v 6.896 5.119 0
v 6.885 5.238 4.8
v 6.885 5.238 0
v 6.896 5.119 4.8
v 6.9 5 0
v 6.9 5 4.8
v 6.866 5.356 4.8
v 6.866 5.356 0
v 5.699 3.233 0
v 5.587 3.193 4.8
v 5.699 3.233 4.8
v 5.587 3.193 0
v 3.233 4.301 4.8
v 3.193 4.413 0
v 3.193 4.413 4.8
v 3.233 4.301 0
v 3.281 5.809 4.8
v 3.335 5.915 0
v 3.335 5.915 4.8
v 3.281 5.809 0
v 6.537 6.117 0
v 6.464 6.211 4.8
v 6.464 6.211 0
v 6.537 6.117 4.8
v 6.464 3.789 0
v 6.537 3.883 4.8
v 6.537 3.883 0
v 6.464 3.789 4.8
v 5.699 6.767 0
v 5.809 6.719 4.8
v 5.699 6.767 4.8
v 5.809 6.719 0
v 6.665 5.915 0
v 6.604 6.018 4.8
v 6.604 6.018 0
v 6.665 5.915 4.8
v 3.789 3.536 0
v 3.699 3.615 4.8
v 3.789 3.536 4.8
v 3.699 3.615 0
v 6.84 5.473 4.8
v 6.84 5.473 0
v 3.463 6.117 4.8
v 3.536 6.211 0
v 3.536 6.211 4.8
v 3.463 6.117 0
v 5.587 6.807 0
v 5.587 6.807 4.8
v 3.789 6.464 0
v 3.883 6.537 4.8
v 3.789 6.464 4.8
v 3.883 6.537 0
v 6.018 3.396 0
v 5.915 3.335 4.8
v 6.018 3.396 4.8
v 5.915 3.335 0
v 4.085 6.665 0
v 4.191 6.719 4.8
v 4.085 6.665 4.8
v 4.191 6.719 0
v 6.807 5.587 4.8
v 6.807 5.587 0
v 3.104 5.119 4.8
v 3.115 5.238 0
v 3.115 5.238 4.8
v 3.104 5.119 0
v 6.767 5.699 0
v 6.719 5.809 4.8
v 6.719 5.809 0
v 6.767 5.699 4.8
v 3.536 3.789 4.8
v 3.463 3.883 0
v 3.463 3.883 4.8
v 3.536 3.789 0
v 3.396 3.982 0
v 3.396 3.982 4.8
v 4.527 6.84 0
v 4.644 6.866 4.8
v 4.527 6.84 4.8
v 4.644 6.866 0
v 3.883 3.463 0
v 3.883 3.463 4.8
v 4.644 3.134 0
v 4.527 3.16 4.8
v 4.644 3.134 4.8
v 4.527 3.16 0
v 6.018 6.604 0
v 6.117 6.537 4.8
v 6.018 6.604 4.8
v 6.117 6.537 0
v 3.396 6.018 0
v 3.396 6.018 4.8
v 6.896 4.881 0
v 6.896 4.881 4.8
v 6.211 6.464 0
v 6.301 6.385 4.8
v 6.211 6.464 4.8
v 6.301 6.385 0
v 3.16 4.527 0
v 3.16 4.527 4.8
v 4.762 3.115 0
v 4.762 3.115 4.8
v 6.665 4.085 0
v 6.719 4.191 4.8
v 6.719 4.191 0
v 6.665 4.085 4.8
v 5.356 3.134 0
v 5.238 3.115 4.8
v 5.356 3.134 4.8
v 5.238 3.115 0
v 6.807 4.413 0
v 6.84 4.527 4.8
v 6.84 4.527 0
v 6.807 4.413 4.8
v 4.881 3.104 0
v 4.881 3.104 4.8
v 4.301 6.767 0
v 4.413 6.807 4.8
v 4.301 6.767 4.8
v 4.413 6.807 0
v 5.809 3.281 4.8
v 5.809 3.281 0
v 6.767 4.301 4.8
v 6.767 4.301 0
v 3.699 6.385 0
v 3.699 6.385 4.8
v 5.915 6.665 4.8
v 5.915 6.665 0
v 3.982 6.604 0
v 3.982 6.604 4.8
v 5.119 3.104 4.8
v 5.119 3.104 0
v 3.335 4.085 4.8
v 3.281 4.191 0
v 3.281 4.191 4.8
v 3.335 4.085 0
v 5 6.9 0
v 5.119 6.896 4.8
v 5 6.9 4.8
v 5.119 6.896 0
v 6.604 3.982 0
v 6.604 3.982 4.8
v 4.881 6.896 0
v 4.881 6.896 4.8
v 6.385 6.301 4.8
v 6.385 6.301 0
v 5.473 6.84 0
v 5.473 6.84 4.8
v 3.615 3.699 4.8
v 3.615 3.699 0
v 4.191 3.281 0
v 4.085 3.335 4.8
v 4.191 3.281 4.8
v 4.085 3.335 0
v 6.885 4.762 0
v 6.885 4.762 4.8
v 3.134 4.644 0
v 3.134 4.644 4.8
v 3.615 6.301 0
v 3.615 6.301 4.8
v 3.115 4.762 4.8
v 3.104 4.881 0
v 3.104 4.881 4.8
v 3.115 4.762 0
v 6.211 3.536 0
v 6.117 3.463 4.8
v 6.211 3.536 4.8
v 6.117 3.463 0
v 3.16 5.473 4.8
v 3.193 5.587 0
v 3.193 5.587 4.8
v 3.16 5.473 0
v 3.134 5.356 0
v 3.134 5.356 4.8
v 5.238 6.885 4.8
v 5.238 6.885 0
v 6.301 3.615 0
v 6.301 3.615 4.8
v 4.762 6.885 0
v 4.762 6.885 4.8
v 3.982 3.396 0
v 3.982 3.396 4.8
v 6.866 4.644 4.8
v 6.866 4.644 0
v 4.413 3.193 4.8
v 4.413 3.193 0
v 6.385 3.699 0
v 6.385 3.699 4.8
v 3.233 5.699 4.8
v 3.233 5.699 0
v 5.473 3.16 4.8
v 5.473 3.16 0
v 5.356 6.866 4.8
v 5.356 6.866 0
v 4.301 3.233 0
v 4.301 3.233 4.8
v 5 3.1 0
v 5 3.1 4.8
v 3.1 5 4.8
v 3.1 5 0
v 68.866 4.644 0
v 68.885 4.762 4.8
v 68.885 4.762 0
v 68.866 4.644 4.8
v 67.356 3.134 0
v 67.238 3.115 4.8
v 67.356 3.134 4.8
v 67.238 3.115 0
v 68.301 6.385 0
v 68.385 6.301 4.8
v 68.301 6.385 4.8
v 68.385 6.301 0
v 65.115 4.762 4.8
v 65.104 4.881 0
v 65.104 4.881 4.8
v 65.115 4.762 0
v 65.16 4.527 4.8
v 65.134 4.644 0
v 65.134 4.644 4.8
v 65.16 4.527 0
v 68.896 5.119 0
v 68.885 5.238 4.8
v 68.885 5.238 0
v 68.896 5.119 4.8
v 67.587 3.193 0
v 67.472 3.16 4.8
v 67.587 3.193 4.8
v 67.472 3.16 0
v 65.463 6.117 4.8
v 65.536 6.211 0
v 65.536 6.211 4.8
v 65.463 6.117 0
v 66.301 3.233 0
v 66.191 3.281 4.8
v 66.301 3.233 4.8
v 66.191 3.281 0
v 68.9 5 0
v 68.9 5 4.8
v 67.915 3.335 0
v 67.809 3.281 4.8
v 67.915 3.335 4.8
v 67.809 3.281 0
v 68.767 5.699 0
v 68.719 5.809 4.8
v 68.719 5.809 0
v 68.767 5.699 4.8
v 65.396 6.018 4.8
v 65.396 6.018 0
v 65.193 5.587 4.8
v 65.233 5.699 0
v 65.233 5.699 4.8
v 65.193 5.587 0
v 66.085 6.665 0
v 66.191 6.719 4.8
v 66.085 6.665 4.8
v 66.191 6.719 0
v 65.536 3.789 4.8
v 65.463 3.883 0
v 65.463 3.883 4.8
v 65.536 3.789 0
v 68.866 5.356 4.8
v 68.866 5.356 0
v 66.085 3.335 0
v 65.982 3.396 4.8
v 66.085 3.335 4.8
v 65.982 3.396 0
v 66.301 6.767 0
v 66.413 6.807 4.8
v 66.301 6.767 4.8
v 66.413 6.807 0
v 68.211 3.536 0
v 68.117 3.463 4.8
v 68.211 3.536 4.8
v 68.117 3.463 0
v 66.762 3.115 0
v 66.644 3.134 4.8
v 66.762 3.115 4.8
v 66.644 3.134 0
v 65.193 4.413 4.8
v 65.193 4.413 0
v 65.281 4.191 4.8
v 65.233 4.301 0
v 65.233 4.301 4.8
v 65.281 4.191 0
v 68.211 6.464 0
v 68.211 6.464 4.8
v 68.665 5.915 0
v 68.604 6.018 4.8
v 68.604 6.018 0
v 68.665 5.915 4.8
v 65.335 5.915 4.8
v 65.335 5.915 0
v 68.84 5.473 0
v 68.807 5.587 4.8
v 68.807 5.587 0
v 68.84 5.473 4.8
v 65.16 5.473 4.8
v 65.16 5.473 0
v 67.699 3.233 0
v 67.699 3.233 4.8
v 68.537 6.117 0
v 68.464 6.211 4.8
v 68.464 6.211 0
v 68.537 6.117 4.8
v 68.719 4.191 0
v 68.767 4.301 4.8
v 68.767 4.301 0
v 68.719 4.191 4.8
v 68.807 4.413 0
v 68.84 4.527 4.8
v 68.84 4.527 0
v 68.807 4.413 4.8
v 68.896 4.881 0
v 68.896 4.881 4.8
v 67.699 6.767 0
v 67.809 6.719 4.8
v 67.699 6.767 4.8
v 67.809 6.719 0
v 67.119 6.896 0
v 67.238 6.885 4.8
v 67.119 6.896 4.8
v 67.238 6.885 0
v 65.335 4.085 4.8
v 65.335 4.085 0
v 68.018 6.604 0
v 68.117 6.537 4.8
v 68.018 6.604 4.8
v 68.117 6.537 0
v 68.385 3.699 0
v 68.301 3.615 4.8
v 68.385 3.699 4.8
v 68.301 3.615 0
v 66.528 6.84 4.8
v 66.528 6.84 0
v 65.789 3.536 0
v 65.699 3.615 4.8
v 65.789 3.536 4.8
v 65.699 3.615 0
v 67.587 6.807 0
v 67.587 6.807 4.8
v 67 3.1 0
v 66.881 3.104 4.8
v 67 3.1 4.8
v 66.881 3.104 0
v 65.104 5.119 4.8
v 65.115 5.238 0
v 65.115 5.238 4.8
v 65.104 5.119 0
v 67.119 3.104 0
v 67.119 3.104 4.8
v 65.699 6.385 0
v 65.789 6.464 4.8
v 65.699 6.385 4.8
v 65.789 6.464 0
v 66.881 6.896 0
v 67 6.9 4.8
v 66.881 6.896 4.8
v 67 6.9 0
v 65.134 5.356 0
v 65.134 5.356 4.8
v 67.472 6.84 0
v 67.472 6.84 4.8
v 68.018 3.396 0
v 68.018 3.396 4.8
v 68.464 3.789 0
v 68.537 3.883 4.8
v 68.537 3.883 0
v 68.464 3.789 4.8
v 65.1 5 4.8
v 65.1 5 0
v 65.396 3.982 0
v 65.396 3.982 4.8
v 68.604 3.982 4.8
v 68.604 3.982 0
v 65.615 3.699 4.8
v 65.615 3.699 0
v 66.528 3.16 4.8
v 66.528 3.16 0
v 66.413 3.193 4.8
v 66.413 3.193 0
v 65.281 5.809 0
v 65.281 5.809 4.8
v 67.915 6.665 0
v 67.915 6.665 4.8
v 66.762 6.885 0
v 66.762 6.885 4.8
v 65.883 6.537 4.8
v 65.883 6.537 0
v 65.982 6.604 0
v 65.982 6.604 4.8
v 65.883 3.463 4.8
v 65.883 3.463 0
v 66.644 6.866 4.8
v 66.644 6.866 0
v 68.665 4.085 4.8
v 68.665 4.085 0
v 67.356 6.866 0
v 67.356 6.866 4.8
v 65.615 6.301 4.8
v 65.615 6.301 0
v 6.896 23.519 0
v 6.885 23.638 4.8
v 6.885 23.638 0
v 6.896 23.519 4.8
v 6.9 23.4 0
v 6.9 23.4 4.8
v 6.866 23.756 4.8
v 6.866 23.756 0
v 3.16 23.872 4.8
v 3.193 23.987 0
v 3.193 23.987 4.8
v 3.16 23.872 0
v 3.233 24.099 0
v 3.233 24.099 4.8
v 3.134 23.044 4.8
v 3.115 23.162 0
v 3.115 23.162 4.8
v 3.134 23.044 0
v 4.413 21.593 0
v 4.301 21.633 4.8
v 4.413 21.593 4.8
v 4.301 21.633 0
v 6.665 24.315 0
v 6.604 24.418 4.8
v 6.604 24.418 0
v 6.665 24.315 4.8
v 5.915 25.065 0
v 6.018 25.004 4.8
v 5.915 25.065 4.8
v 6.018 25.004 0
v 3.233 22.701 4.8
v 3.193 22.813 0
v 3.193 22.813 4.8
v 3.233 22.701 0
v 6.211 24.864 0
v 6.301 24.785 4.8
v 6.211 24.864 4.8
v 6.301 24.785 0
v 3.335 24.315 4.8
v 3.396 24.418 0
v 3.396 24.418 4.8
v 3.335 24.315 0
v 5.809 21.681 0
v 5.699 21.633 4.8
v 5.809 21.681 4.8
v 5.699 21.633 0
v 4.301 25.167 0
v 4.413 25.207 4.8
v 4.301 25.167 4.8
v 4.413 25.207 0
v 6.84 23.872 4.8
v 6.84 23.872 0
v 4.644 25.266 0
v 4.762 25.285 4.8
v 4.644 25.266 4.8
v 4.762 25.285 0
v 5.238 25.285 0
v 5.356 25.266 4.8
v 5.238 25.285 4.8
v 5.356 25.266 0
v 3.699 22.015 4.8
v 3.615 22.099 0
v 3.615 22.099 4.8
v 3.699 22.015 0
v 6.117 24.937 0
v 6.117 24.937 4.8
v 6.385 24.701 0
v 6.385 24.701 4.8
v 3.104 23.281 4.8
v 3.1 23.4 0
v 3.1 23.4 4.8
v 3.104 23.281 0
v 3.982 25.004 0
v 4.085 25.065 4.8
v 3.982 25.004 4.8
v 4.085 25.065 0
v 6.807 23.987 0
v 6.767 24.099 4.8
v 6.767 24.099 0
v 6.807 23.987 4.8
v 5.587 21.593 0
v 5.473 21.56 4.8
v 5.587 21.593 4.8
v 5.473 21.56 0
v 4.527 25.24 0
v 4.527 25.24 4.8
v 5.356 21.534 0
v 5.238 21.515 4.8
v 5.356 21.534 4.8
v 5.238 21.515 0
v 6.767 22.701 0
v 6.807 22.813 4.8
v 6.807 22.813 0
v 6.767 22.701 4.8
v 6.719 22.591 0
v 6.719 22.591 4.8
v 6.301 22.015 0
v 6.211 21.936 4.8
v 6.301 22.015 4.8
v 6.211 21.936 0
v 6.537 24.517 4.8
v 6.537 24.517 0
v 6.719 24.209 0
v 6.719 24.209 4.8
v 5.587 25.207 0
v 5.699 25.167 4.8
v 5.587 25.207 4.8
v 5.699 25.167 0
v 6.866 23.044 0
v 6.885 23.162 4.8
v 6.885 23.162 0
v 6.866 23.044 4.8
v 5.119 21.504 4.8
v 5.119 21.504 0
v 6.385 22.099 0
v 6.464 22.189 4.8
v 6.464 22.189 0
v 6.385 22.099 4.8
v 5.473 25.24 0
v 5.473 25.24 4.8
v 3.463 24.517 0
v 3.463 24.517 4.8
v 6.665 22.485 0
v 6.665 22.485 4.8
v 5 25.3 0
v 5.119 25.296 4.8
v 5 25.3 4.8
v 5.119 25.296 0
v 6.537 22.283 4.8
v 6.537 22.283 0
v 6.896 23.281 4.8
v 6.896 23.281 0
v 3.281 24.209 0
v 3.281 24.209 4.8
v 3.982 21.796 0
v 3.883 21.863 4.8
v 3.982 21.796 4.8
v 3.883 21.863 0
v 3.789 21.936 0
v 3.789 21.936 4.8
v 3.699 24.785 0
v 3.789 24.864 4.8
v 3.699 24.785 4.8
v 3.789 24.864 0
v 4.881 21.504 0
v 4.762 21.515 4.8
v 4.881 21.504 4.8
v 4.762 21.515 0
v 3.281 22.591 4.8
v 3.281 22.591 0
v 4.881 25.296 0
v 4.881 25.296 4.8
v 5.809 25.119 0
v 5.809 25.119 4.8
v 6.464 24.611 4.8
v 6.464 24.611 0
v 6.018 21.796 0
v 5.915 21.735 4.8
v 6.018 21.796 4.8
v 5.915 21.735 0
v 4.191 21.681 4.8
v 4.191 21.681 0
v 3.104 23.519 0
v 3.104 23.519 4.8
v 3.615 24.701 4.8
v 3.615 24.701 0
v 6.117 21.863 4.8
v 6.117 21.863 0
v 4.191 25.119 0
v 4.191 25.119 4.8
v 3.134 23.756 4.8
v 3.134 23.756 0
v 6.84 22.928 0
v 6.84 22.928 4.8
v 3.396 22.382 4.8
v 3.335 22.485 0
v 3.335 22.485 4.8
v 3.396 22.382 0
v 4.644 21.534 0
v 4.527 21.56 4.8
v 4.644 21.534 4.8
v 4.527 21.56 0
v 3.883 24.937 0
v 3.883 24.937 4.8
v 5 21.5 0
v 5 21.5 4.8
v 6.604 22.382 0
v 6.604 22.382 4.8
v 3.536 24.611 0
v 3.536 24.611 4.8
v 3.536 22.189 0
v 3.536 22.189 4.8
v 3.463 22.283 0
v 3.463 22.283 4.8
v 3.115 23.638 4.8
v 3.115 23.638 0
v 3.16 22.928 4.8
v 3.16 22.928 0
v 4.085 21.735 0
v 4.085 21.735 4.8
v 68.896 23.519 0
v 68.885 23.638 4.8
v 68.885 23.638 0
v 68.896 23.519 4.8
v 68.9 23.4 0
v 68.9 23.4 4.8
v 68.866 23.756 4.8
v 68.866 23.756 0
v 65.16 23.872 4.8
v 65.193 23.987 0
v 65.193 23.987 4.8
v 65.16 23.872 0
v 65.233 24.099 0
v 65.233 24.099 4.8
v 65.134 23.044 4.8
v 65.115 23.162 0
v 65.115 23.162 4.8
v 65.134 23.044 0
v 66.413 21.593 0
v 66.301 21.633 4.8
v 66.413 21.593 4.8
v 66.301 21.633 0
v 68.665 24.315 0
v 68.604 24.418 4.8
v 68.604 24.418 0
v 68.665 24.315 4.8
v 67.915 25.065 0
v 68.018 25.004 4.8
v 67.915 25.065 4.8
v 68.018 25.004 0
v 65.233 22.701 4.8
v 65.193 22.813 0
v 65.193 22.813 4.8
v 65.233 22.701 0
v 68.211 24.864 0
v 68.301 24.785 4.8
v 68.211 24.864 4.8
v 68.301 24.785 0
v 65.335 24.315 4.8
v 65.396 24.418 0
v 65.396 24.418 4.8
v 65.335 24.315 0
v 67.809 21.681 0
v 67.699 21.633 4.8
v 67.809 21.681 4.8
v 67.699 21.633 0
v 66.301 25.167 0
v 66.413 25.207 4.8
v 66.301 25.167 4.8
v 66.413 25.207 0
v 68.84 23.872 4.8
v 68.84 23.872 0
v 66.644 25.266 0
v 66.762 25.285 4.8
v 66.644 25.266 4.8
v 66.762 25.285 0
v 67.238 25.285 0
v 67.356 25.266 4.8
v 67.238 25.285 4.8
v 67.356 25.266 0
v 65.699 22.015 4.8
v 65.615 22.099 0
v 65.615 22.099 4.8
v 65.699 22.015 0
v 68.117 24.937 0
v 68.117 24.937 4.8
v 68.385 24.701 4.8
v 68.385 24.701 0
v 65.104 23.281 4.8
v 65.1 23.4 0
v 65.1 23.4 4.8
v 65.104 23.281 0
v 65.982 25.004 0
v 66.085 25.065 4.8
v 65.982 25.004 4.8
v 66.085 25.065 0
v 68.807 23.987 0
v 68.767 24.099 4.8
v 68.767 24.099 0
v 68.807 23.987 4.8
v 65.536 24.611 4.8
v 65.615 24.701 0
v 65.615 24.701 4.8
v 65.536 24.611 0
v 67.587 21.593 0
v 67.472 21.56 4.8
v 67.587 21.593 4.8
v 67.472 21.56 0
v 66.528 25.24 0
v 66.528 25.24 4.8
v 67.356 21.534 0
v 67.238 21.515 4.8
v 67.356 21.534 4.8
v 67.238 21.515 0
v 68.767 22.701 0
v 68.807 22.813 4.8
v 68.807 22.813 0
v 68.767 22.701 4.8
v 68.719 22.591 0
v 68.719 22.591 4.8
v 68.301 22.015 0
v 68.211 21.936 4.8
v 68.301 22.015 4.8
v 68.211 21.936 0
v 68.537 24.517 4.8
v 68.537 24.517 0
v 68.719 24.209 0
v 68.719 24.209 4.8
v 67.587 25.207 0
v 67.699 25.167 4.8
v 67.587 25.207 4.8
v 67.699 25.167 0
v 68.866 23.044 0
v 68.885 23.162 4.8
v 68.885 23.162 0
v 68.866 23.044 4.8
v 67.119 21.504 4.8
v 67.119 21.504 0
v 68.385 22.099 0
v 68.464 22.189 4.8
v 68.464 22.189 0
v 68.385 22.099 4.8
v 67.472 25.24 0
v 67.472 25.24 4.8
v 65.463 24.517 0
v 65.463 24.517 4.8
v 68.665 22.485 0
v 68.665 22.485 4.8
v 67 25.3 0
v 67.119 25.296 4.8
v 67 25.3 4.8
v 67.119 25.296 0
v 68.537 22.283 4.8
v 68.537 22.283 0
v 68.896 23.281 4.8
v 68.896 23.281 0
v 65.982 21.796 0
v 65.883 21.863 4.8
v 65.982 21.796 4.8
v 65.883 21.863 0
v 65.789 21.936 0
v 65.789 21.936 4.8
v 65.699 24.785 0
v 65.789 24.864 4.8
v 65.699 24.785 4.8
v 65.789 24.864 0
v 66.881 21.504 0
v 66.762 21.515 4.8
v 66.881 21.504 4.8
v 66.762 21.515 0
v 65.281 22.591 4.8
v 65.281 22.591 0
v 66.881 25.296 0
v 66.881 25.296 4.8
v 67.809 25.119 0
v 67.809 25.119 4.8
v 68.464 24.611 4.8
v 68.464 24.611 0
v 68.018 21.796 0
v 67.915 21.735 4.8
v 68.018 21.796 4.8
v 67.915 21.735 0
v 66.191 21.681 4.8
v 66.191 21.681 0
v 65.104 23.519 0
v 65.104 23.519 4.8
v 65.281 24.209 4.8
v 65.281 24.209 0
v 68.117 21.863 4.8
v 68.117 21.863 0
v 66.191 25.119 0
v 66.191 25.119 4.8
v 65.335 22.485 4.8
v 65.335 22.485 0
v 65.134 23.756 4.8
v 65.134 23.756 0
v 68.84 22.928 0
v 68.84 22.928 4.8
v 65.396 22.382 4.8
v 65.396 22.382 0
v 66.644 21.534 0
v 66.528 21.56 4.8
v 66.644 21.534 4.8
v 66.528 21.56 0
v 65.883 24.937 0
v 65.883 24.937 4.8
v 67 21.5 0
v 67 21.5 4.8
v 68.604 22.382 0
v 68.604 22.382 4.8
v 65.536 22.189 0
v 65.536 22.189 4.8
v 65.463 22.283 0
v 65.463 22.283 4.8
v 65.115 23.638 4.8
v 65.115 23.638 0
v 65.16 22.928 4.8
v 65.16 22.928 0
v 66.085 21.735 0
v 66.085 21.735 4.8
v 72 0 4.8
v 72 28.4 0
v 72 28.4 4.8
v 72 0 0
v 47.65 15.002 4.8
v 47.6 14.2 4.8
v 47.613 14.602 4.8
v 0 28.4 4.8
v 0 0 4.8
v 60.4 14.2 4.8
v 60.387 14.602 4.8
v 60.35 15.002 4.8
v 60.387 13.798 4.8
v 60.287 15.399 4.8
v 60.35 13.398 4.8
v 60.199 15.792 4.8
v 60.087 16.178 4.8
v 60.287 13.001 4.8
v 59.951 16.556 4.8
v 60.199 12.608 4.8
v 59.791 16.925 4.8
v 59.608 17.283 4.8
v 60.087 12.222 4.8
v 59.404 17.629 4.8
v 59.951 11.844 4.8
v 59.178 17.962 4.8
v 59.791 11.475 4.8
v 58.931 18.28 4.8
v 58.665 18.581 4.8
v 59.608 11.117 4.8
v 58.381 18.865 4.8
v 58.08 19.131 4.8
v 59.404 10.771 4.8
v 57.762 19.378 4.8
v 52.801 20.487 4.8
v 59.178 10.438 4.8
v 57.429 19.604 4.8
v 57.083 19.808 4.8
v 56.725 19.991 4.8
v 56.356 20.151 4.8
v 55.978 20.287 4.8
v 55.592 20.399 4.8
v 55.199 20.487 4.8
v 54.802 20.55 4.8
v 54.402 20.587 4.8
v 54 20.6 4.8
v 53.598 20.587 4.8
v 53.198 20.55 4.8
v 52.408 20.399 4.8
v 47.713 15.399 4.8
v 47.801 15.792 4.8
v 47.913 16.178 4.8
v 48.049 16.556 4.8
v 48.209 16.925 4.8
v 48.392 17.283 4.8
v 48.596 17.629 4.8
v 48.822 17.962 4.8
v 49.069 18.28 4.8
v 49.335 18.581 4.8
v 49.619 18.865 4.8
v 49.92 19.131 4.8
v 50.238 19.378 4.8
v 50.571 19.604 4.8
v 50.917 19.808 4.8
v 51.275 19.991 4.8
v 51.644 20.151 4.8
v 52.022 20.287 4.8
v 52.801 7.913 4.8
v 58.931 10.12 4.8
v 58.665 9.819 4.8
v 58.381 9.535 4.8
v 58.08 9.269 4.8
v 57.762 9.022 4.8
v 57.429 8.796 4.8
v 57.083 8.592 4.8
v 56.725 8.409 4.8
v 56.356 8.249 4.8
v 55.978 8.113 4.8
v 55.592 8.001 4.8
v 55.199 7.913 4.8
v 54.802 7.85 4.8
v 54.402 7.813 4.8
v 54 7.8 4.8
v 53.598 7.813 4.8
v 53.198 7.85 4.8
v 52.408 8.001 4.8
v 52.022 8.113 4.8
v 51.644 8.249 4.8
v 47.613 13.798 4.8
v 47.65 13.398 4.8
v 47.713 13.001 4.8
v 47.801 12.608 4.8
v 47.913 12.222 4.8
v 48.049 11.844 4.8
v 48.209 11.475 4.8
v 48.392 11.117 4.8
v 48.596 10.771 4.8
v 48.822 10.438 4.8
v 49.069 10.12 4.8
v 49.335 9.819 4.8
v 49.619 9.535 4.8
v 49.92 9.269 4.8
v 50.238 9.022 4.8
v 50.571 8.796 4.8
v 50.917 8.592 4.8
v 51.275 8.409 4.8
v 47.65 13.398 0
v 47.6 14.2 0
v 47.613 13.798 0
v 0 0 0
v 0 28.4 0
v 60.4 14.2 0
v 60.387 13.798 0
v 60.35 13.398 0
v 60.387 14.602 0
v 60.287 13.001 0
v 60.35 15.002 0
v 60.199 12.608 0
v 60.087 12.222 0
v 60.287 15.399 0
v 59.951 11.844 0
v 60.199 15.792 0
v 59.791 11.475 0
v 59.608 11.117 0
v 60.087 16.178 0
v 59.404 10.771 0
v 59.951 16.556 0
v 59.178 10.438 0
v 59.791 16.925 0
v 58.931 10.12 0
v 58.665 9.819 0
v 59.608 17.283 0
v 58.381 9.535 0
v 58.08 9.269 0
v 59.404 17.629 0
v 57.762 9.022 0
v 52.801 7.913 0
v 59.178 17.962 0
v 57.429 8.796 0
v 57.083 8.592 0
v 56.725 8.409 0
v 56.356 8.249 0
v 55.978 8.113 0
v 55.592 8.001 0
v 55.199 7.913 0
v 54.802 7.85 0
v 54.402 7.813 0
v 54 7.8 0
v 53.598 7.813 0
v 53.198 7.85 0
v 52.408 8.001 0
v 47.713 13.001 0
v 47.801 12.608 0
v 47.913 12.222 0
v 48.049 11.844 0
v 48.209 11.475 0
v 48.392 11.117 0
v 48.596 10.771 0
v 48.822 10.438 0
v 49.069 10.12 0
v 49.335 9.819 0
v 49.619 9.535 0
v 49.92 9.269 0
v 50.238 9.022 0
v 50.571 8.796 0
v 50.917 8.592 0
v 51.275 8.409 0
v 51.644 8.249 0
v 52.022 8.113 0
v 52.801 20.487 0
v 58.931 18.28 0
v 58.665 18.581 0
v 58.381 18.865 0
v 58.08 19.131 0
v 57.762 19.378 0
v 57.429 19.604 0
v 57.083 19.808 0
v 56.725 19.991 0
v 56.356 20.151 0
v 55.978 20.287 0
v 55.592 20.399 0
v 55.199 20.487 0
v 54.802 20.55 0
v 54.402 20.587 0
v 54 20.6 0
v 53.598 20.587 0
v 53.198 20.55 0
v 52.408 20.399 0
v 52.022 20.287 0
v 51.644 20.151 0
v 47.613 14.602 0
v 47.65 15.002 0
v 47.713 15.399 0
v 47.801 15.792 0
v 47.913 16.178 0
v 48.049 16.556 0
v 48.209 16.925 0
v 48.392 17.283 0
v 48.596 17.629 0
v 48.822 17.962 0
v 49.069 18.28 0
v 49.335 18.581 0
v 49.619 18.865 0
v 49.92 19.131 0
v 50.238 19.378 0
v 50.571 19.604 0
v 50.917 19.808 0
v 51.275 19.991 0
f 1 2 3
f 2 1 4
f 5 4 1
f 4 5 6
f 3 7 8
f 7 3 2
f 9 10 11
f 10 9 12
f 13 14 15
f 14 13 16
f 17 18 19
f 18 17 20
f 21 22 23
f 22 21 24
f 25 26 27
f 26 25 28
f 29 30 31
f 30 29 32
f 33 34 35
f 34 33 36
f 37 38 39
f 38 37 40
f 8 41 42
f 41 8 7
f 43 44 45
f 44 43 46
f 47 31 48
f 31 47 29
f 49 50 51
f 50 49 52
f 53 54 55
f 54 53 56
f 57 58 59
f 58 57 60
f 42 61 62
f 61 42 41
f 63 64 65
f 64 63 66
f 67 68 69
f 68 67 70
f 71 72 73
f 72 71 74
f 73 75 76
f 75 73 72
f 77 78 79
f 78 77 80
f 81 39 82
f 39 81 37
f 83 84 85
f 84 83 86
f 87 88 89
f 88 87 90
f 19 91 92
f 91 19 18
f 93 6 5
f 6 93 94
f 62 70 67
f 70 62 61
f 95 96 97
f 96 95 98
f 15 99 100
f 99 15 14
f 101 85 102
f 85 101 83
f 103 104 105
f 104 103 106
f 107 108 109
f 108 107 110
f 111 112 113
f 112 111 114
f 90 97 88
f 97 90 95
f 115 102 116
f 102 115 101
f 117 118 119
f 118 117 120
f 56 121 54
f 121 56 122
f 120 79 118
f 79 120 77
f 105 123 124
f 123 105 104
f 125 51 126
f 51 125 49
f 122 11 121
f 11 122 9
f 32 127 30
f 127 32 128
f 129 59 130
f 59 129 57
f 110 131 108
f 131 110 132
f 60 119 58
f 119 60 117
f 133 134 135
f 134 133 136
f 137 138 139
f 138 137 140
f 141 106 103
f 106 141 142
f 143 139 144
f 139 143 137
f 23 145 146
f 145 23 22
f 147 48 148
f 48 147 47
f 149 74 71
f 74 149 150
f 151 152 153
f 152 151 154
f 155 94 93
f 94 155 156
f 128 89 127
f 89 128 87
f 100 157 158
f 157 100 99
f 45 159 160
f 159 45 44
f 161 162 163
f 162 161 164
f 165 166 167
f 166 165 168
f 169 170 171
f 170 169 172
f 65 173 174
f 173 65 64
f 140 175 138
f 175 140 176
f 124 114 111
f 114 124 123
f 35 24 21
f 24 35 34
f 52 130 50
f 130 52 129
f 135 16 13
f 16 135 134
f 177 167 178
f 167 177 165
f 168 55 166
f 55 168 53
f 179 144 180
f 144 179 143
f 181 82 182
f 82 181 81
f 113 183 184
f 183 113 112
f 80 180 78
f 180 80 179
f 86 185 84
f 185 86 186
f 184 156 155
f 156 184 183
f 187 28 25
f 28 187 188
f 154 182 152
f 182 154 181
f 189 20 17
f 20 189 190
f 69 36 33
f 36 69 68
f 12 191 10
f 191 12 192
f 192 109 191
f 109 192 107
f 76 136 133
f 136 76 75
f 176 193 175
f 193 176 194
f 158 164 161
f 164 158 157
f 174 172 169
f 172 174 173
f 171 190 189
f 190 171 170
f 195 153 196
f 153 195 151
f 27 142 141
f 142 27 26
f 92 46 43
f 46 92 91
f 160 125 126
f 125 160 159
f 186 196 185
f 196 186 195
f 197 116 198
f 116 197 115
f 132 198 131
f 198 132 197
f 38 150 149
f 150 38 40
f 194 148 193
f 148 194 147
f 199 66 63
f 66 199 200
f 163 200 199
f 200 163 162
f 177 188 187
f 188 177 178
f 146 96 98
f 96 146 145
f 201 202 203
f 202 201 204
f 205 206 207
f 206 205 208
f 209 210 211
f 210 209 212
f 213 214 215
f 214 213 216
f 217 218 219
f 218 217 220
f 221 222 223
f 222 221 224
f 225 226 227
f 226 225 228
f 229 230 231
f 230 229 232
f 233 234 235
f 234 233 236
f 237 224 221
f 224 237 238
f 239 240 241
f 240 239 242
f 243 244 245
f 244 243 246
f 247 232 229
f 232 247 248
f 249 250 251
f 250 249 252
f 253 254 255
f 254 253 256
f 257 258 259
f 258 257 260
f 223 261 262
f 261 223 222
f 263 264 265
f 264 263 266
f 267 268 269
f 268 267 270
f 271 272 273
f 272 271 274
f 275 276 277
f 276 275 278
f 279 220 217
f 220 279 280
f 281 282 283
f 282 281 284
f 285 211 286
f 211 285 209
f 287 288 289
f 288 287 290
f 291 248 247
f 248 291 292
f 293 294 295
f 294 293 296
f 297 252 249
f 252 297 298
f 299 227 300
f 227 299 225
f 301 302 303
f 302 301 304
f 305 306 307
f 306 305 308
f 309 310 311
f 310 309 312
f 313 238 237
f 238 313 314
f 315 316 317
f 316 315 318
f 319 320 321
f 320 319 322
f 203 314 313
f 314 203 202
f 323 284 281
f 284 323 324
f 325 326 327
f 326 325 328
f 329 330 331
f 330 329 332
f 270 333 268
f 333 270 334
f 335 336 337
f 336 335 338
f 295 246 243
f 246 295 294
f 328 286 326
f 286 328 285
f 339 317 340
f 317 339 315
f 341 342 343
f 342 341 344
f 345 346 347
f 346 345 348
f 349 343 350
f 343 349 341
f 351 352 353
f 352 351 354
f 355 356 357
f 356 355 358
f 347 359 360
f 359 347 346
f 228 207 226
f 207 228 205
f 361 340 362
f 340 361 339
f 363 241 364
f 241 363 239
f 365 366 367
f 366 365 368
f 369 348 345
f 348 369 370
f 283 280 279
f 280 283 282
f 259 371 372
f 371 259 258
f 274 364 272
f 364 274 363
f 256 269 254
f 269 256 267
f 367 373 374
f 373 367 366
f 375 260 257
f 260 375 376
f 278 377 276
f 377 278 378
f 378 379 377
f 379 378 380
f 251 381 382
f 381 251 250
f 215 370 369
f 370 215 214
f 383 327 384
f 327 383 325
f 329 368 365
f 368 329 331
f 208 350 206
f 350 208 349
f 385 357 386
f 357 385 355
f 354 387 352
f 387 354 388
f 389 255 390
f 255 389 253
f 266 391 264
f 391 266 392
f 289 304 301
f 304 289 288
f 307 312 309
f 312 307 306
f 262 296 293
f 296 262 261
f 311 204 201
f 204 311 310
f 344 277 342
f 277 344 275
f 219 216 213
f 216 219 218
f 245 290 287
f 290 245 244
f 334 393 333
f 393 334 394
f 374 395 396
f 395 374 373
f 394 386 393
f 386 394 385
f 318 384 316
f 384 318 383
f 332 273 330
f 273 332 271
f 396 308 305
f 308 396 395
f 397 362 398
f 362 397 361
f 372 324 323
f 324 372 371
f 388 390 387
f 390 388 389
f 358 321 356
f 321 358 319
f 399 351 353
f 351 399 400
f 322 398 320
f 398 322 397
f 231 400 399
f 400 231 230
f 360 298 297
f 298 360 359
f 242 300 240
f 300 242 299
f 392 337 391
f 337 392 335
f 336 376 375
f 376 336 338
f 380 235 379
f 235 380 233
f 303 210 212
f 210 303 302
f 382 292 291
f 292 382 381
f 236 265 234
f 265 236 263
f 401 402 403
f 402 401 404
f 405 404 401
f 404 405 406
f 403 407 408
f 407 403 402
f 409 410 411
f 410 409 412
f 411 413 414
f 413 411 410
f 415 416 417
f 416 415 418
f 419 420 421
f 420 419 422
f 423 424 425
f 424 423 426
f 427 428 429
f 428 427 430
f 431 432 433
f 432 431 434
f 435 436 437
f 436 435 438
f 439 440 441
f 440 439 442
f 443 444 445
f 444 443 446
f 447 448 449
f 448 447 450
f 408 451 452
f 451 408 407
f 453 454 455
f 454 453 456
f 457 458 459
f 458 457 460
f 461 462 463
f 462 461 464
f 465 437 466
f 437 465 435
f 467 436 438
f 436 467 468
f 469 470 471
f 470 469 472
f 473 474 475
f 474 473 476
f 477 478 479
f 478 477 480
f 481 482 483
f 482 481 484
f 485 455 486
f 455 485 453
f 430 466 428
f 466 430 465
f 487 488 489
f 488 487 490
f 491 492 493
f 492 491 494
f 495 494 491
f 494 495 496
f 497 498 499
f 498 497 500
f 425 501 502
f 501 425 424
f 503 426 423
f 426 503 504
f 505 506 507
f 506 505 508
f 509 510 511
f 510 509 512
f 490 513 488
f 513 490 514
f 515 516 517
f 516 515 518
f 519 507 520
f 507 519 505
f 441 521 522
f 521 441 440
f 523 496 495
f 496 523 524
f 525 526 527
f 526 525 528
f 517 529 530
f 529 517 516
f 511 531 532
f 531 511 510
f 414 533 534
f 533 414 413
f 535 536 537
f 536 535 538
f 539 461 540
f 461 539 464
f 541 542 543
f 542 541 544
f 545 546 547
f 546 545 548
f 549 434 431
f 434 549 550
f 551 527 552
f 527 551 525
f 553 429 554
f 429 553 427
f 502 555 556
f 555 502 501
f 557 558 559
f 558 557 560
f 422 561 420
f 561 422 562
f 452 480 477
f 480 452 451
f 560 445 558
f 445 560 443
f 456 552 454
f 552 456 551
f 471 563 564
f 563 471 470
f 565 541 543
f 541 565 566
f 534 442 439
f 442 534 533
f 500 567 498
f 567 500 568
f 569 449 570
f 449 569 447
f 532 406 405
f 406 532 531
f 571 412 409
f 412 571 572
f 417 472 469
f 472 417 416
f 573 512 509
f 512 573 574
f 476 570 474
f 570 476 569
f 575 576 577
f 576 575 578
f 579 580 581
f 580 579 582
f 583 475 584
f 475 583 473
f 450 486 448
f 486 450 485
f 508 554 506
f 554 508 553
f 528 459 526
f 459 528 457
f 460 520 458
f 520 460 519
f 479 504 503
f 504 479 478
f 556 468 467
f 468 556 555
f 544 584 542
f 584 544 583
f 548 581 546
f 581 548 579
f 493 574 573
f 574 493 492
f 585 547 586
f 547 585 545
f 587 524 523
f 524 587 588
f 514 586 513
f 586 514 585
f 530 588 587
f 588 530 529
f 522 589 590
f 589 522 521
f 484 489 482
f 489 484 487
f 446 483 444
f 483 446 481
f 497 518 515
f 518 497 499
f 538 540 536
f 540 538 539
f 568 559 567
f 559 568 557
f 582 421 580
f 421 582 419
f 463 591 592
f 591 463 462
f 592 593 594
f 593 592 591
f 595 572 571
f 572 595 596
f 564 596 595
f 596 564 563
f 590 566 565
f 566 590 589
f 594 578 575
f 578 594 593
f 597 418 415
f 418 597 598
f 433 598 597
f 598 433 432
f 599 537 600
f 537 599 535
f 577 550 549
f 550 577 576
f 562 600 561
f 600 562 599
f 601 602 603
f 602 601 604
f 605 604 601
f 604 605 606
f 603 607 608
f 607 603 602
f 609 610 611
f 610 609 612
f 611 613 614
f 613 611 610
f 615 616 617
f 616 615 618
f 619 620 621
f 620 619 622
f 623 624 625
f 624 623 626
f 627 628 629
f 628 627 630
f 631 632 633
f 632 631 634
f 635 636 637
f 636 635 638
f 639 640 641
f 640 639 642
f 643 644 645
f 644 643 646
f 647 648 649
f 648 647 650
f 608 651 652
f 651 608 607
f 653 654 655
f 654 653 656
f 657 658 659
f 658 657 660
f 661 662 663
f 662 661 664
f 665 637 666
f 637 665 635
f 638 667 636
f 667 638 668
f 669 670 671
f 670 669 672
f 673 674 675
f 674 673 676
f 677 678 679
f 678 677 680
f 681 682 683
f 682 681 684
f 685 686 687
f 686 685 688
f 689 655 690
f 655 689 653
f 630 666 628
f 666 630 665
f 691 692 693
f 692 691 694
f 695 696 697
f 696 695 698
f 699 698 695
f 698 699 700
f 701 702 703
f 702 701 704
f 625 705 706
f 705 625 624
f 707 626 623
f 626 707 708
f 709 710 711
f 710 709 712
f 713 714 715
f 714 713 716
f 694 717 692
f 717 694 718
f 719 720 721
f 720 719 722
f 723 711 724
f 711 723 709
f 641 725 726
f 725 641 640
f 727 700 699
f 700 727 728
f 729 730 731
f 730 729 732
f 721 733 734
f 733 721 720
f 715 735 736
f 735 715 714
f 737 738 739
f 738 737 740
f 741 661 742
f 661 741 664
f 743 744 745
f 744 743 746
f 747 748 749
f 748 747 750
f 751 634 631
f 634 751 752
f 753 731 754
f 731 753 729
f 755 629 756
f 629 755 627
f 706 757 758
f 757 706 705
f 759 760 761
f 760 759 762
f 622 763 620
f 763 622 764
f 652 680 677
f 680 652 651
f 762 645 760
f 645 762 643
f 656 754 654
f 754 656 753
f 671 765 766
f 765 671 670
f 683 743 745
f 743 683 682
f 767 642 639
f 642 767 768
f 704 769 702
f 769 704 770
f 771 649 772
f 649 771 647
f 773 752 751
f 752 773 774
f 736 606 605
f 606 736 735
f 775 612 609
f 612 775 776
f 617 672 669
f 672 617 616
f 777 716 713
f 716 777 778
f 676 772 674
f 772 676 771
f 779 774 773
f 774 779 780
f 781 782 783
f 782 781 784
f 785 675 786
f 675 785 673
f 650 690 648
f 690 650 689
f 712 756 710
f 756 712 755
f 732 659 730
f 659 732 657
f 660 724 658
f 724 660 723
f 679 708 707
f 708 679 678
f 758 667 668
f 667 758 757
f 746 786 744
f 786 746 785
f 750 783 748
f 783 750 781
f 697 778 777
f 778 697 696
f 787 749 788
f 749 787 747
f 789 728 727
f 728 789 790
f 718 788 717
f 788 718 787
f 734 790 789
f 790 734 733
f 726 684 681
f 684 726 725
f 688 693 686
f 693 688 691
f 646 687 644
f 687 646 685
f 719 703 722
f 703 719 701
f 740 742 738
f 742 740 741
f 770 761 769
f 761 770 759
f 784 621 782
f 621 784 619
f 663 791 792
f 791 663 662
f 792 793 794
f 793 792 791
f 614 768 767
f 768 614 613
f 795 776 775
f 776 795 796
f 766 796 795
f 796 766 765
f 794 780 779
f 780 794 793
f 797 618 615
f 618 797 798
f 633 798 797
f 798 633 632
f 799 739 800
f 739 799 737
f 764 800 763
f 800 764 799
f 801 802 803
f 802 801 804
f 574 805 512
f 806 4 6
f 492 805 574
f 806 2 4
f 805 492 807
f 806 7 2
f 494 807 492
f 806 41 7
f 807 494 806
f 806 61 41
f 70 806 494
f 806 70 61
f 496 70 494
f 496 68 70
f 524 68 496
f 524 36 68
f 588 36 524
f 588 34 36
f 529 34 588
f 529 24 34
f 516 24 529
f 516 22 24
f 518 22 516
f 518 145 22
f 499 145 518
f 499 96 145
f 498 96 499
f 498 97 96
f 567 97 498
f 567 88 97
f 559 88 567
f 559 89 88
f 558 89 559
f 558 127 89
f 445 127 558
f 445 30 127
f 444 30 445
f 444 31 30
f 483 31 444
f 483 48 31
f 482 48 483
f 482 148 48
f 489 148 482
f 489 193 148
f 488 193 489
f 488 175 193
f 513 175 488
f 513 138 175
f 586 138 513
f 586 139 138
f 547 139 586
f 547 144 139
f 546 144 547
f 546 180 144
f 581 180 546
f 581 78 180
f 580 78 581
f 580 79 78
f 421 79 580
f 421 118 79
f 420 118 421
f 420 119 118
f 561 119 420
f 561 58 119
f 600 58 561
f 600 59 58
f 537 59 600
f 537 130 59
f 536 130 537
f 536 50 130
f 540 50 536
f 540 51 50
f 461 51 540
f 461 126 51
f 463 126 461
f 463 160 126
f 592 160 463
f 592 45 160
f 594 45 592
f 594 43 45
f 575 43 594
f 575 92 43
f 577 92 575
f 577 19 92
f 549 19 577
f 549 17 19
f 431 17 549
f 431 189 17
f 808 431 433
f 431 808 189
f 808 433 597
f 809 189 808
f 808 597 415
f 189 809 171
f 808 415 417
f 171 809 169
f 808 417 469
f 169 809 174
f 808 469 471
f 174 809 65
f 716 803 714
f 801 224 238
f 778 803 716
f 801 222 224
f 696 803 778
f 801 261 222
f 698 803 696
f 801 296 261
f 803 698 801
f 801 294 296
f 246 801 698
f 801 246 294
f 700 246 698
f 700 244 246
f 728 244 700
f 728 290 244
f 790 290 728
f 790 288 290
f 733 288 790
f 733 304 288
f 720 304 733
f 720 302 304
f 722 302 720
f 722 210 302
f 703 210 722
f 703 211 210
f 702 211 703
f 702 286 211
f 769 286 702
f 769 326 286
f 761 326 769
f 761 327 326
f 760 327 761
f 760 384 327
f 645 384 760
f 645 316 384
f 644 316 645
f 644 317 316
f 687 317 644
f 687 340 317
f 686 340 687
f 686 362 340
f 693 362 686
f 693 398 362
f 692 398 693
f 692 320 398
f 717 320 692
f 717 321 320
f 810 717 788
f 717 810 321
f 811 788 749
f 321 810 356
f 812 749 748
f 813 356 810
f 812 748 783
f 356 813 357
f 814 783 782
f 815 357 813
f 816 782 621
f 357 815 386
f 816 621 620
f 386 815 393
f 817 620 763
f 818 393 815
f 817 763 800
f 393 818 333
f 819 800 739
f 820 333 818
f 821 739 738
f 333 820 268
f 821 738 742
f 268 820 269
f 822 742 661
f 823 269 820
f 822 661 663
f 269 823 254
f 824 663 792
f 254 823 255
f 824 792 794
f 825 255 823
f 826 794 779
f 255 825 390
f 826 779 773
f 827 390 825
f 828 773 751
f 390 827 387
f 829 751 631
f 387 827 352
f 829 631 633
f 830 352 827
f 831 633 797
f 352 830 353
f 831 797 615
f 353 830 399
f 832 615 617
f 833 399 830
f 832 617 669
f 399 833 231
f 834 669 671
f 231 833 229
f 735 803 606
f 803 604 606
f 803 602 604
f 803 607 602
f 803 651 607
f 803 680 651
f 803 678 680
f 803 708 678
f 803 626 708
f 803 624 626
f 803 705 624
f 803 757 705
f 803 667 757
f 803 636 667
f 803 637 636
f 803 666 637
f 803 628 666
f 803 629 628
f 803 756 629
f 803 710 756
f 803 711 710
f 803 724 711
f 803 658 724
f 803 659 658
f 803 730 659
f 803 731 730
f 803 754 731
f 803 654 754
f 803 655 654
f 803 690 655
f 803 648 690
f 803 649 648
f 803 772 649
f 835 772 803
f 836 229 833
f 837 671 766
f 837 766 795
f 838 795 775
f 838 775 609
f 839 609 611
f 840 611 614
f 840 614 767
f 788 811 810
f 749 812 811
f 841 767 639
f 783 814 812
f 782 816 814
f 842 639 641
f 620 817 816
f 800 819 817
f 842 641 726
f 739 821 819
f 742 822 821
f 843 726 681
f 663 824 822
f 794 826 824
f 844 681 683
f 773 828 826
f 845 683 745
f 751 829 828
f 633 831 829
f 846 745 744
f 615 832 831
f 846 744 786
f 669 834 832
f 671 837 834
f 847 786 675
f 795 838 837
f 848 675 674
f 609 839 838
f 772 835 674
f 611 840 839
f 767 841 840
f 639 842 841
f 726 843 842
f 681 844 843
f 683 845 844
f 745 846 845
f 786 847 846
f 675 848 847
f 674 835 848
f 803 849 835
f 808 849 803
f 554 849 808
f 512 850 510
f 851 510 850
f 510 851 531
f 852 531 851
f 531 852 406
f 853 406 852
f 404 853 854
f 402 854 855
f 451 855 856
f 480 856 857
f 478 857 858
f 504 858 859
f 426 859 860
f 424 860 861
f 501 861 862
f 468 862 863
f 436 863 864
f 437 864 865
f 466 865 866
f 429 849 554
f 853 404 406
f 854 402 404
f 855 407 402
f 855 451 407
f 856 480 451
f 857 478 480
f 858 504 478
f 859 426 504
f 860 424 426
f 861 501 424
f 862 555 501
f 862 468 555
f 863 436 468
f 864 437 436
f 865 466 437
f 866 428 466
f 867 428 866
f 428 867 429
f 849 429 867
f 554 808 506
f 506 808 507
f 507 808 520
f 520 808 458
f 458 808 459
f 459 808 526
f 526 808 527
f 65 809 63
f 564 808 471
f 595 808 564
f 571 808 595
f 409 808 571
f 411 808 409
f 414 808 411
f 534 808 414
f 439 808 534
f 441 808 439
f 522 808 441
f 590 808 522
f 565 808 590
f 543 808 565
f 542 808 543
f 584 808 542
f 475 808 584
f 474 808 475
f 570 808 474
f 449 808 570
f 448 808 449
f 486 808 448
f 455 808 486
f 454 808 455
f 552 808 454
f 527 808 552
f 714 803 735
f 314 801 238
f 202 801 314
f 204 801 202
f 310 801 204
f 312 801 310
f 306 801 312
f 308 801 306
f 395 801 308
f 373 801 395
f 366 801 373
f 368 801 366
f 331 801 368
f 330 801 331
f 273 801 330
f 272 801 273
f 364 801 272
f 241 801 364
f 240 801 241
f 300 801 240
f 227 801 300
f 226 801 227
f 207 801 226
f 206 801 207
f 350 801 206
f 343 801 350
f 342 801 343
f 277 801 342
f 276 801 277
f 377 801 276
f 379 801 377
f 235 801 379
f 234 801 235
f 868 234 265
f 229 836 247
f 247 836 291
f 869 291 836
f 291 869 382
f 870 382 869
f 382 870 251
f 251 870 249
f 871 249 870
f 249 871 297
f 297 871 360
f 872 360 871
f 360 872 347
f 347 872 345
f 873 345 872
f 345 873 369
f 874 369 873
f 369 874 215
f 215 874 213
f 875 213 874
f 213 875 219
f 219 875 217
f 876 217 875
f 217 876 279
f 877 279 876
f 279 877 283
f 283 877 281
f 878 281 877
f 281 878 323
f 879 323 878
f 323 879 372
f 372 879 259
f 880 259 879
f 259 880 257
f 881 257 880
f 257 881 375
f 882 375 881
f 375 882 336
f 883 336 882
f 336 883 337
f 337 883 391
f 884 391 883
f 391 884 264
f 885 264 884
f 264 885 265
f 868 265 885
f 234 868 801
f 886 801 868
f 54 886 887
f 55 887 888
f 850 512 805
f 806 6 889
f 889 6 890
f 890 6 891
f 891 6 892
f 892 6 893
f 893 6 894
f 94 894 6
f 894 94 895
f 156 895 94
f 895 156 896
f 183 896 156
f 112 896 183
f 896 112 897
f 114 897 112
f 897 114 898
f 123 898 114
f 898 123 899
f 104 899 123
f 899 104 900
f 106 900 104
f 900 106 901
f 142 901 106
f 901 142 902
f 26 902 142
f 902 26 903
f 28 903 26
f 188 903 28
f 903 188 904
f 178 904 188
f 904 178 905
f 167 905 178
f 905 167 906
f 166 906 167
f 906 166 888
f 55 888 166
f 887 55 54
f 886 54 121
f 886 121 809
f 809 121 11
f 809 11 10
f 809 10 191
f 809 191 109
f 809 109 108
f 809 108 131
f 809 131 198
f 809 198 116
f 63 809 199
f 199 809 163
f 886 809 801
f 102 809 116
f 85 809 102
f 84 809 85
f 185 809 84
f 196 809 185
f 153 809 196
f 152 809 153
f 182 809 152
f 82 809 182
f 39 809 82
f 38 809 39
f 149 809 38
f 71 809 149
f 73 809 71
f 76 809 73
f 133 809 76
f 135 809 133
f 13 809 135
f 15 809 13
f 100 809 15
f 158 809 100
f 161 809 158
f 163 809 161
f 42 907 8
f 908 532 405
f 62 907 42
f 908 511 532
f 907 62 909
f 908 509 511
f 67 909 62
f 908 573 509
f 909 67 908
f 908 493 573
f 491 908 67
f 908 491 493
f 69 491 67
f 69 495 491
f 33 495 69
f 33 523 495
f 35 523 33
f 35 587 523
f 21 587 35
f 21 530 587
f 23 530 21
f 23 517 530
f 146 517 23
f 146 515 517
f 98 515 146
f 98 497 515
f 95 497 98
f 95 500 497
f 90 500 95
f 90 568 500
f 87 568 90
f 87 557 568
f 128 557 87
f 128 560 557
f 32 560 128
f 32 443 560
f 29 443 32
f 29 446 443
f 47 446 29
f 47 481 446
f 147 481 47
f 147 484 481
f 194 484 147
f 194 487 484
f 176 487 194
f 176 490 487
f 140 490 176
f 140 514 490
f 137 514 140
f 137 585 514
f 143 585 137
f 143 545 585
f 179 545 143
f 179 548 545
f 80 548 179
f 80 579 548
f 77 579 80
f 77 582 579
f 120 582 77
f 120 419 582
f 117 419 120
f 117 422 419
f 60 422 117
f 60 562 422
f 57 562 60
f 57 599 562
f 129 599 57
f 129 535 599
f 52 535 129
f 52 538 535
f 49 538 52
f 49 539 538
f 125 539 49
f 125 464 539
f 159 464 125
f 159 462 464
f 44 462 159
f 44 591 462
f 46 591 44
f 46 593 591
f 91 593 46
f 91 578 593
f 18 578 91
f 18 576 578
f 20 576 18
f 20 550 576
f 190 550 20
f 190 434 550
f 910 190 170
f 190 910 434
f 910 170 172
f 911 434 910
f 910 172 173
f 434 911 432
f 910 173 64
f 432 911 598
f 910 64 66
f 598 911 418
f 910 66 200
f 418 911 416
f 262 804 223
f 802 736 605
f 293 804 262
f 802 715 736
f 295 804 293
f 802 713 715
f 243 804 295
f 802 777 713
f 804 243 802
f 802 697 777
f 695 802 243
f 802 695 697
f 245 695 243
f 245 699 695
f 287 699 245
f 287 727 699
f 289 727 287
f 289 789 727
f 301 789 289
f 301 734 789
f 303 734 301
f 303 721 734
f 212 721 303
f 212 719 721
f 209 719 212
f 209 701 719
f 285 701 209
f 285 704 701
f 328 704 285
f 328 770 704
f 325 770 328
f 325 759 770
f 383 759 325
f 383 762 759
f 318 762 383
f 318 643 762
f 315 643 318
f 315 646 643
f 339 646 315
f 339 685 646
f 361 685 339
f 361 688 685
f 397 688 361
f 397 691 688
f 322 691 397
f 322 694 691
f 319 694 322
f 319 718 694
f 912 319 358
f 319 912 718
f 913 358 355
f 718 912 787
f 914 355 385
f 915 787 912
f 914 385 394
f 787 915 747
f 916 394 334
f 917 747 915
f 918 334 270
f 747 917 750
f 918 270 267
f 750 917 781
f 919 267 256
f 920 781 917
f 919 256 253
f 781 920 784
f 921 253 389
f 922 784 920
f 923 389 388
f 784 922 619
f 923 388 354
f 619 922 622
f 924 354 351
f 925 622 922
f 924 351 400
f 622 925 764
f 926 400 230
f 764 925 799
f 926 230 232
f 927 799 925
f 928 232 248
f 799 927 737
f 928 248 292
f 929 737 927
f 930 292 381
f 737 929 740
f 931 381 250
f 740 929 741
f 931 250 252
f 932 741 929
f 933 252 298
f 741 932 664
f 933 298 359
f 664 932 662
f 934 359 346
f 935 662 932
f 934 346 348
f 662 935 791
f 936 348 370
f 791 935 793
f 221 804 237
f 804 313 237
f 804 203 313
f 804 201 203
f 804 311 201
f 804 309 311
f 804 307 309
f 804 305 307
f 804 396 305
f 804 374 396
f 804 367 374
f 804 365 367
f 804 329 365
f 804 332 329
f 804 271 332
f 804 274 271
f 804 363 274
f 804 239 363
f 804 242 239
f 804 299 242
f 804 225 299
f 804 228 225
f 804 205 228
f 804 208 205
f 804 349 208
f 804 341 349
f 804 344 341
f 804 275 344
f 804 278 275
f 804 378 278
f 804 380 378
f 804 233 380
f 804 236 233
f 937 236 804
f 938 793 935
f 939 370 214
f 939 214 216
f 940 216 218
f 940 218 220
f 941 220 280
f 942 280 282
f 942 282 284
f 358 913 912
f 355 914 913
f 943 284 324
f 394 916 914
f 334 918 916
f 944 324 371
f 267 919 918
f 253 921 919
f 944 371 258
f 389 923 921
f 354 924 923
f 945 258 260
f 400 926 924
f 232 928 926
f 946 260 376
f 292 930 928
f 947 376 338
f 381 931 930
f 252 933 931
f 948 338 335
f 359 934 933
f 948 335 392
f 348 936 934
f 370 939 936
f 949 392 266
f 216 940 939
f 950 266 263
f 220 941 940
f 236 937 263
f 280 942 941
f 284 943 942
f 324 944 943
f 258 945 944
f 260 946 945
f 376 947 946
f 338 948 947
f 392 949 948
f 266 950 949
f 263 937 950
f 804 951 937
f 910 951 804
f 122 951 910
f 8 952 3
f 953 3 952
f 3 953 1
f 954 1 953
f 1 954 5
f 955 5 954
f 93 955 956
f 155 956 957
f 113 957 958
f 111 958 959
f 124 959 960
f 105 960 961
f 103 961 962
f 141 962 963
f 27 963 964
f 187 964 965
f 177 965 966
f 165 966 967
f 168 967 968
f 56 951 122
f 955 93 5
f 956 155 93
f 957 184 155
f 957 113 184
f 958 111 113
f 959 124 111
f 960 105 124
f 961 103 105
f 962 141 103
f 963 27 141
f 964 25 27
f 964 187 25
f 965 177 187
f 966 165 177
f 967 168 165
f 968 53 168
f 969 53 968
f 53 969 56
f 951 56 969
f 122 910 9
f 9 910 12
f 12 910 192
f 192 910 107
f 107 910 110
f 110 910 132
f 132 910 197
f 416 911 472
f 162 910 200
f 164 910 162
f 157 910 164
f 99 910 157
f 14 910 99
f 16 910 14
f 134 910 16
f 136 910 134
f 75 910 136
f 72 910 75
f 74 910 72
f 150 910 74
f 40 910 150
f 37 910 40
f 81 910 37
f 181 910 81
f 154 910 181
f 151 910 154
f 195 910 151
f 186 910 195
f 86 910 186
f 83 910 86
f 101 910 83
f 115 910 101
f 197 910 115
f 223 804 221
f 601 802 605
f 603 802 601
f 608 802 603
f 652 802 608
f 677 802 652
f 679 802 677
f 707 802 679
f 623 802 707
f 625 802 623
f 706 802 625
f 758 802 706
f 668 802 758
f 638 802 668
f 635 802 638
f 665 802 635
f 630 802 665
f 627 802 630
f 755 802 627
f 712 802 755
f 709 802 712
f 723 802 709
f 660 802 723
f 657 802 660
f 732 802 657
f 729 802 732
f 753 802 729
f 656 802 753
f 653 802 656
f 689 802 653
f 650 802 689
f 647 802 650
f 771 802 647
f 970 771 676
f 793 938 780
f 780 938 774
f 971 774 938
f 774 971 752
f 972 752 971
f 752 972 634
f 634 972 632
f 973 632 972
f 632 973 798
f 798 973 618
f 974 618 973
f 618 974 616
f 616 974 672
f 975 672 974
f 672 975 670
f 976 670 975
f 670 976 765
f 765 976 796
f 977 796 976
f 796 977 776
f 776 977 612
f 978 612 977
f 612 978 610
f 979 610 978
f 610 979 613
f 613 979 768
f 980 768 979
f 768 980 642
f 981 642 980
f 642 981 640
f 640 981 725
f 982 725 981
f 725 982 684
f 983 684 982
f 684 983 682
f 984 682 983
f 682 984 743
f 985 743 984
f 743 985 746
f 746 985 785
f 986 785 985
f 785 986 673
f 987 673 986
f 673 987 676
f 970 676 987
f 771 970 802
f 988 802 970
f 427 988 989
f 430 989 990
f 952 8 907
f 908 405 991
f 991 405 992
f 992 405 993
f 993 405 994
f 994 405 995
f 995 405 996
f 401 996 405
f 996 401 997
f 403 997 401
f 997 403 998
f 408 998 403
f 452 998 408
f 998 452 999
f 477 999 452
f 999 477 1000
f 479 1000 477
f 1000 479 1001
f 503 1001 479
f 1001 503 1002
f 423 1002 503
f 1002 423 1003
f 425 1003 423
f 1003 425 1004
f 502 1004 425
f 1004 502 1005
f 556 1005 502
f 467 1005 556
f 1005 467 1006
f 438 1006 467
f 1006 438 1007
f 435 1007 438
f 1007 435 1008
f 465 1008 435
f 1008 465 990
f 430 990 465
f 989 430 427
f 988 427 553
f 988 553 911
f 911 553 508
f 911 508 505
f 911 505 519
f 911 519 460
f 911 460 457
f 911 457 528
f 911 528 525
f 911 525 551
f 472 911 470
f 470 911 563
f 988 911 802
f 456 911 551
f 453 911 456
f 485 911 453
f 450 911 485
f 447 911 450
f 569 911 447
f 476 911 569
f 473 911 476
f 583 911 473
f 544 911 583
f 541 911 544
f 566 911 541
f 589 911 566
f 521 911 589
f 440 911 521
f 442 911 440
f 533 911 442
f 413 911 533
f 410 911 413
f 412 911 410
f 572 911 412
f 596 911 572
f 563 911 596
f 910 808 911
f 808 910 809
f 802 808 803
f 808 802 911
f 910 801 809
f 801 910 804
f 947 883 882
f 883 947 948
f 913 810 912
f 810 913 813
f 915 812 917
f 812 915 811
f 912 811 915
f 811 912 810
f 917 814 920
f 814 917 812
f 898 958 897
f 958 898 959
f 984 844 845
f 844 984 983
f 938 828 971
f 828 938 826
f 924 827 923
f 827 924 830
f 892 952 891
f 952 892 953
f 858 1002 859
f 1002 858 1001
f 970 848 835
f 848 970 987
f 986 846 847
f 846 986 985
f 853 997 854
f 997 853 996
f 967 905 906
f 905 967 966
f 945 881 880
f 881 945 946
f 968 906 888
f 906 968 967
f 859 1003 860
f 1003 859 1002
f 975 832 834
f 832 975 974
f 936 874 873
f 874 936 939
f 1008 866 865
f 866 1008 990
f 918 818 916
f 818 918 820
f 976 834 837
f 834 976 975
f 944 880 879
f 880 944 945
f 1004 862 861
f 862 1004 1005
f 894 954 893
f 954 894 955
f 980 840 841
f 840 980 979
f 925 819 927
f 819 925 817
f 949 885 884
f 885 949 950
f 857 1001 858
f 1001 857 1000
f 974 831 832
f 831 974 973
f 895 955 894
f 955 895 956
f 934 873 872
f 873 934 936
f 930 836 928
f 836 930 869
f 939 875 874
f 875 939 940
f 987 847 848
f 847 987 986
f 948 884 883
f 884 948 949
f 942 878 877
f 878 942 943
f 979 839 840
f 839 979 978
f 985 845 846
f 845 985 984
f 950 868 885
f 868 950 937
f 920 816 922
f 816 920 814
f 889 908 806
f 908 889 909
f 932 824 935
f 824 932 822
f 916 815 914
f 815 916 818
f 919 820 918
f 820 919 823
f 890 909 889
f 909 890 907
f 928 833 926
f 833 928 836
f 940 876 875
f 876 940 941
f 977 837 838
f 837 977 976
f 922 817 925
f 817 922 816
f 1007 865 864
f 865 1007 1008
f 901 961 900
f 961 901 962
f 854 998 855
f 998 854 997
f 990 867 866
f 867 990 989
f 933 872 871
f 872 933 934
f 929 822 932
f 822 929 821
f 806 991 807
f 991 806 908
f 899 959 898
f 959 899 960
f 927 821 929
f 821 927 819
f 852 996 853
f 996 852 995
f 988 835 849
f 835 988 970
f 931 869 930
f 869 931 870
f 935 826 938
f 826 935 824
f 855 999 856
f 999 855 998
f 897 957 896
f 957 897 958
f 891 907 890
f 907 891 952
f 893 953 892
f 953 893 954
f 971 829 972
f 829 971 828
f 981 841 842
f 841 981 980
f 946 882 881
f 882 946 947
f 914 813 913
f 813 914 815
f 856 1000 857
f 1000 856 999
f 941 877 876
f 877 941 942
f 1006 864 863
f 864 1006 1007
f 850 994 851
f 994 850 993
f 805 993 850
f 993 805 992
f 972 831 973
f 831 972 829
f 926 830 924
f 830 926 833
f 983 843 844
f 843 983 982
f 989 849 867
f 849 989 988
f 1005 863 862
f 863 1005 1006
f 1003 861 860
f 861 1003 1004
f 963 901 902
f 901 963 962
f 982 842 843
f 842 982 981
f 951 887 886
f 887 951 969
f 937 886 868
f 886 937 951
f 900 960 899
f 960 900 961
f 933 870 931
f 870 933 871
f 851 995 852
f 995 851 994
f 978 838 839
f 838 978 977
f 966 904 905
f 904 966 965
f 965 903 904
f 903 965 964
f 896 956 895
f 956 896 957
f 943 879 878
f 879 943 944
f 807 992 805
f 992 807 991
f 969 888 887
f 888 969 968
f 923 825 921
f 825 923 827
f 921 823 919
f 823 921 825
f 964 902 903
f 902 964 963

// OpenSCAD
// file: ../configurations/global.scad
housing_facades_throws_diameter = 3.8;

// external size
case_external_x_size = 90;
case_external_y_size = 140;
case_external_z_size = 38;
case_external_panes_thickness = 4.8;

facade_front_round_edges_radius = 5;
facade_throws_margin = 5;

facade_front_fixation_throws_diameter = housing_facades_throws_diameter;

// facade corners
facade_corners_offset_lenght = 9;
facade_corners_main_x_size = 19;
facade_corners_main_y_size = 19;
facade_corners_main_thickness = 11;
facade_corners_correction_offset_length = 0.2;
facade_corners_correction_offset_thickness = 0.0;
facade_fn = 100;


facade_controller_coords = [
    case_external_x_size / 2,
    case_external_y_size / 2 - 30,
];


// Screen frames
screen_frame_electronic_board_margin = 3;
screen_frame_throw_diameter = 3.5;
screen_frame_piece_z_size = 1.5;
screen_frame_piece_glass_embedding_margin = 1;
screen_frame_piece_glass_embedding_z_depth = 1;
screen_frame_facade_piece_z_size = 1;
screen_frame_fn = 100;

screen_glass_visible_zone_x_margin = 0.7;
screen_glass_visible_zone_y_margin = 0.7;
screen_glass_z_size = 1;

facade_screen_coords = [
    case_external_x_size / 2,
    case_external_y_size / 2 + 28,
];


// Generics
insert_throw_diameter = 4.2;
insert_throw_length = 6 + 2;


// Controller facade
controller_breadboard_x_size_point = 28;
controller_breadboard_y_size_point = 9;

controller_facade_z_size = 2;
controller_facade_button_throw_margin = 1;
controller_facade_small_button_throw_margin = 0.5;
controller_facade_a_b_button_throw_margin = 0.5;

controller_facade_border_rounded_border_1 = 5;
controller_facade_border_rounded_border_2 = 4;

controller_facade_with_border_x_size = 82;
controller_facade_with_border_y_size = 47;

controller_facade_border_throws_margin = 5;
controller_braidboard_throw_margin = 1;

controller_facade_border_fn = 80;


// Cross Button
controller_cross_button_x_y_size = 20;
controller_cross_button_z_size = 4;
controller_cross_button_thickness = 6;
controller_cross_button_round_edges_radius = 1;
controller_cross_button_support_x_y_size = 22;
controller_cross_button_support_z_size = 1;
controller_cross_button_fn = 150;


// A and B Buttons
controller_a_b_button_diameter = 7.5;
controller_a_b_button_z_size = 4;
controller_a_b_button_support_diameter = 9.5;
controller_a_b_button_support_z_size = 1;
controller_a_b_button_fn = 80;


// small Buttons
controller_small_button_diameter = 5.5;
controller_small_button_z_size = 3;
controller_small_button_support_diameter = 7.5;
controller_small_button_support_z_size = 1;
controller_small_button_fn = 80;

// Directional cross
controller_directional_cross_points_coords = [6, 5];
controller_start_button_points_coords = [14, 3];
controller_select_button_points_coords = [18, 3];
controller_menu_button_points_coords = [14, 7];
controller_option_button_points_coords = [18, 7];
controller_a_button_points_coords = [23, 4];
controller_b_button_points_coords = [27, 6];
controller_bolt_throws_list = [
    [2, 2],
    [2, 8],
    [10, 2],
    [10, 8],
    [27, 2],
    [23, 8],
];


// usb charger holder
usb_charger_support_total_x_size = 17.57 + 15;
usb_charger_support_total_y_size = 12;
usb_charger_support_total_z_size = 2;


usb_charger_fixation_support_z_size = 4.5;
usb_charger_encaps_x_size = 17.57 + 1;
usb_charger_encaps_y_size = 27.85 + 1;
usb_charger_encaps_z_size = 1;

usb_charger_facade_x_fixation_spacing = 42;
usb_charger_facade_y_size = 1.36;
usb_charger_facade_z_size = 14;

usb_charger_throw_diameter = 3.5;
usb_charger_facade_holder_z_offset = 3.5; //
usb_charger_fixation_facade_y_margin = 0.5;
usb_charger_throw_offset_y = 4.5;
usb_charger_throw_offset_x = 3.5;
usb_charger_facade_fn = 100;

usb_charger_external_facade_main_throw_margin = 2;
usb_charger_external_facade_main_throw_diameter = housing_facades_throws_diameter;

usb_charger_coords = [
    28, 15
];


facade_top_on_off_button_throw_diameter = 12.8;

facade_top_on_off_button_coords = [
    case_external_x_size / 2 + 18,
    case_external_z_size / 2
];


// Bolt join Piece Mother board
bolt_join_mother_board_internal_diameter = 3.5;
bolt_join_mother_board_external_diameter = 3.5 + (0.4 * 6);
bolt_join_mother_board_height = 3;

// Bolt join Piece GamePadController
bolt_join_game_pad_internal_diameter = 3.5;
bolt_join_game_pad_external_diameter = 3.5 + (0.4 * 6);
bolt_join_game_pad_height = 6.5;

bolt_join_fn = 500;


// Mother board breadboard
mother_board_x_size_point = 25;
mother_board_y_size_point = 32;

mother_board_coords = [
    case_external_x_size / 2 - ((mother_board_x_size_point + 1) * 2.54) / 2,
    44,
    3
];

mother_board_bolt_throws_list = [
    [3, 2],
    [3, 17],
    [23, 2],
    [23, 17],
];


// Speaker
speaker_facade_throw_diameter = 28 + 1;
speaker_facade_z_size = 1.36;
speaker_facade_rounded_radius = 5;
// file: ../enveloppes/on-off-button-throw-enveloppe.scad
include <../configurations/global.scad>

module onOffButtonThrowEnveloppe(
    z_size = case_external_panes_thickness * 2,
    throw_diameter = facade_top_on_off_button_throw_diameter
) {
    cylinder(h = z_size, d = throw_diameter, center = true, $fn = $fn);
}
// file: ../libraries/commons.scad
/**
 * forEachCoord
 * Wrapper to apply child on each element
 */
module forEachCoord(coords_list) {
    for (coords = coords_list)
        translate(
            [
                coords[0] == undef ? 0 : coords[0],
                coords[1] == undef ? 0 : coords[1],
                coords[2] == undef ? 0 : coords[2],
            ]
        )
            children();
}
// main file
use <./../libraries/commons.scad>
use <./../enveloppes/on-off-button-throw-enveloppe.scad>

include <./../configurations/global.scad>


/**
 * facadeTopPiece
 * @name facadeTopPiece
 * @description Piece can be printed or CNC cutted #3DPrint, #CNC
 * @type piece
 * @parent housingComponent
 */
module facadeTopPiece(
    x_size = case_external_x_size - (facade_corners_offset_lenght * 2),
    y_size = case_external_z_size - (case_external_panes_thickness * 2),
    z_size = case_external_panes_thickness,
    throws_margin = facade_throws_margin,
    throws_diameter = housing_facades_throws_diameter,
    facade_top_on_off_button_coords = facade_top_on_off_button_coords,
    facade_corners_offset_lenght = facade_corners_offset_lenght,
    case_external_panes_thickness = case_external_panes_thickness,
    $fn = facade_fn
) {
    echo(str("x_size: ", x_size, " y_size: ", y_size, " z_size: ", z_size));

    difference() {
        color("BurlyWood")
            cube([x_size, y_size, z_size]);

        translate([0, 0, -z_size / 2])
            forEachCoord([
                [throws_margin, throws_margin],
                [x_size - throws_margin, throws_margin],
                [throws_margin, y_size - throws_margin],
                [x_size - throws_margin, y_size - throws_margin,],
            ])
                cylinder(h = z_size * 2, d = throws_diameter, $fn = $fn);

        
        translate([
                facade_top_on_off_button_coords[0] - facade_corners_offset_lenght,
                facade_top_on_off_button_coords[1] - case_external_panes_thickness,
                z_size / 2
            ])
                onOffButtonThrowEnveloppe();
    }

}

/**
 * @stl
 * @png
 * @colorscheme BeforeDawn
 * @view axes,scales
 */
facadeTopPiece();
